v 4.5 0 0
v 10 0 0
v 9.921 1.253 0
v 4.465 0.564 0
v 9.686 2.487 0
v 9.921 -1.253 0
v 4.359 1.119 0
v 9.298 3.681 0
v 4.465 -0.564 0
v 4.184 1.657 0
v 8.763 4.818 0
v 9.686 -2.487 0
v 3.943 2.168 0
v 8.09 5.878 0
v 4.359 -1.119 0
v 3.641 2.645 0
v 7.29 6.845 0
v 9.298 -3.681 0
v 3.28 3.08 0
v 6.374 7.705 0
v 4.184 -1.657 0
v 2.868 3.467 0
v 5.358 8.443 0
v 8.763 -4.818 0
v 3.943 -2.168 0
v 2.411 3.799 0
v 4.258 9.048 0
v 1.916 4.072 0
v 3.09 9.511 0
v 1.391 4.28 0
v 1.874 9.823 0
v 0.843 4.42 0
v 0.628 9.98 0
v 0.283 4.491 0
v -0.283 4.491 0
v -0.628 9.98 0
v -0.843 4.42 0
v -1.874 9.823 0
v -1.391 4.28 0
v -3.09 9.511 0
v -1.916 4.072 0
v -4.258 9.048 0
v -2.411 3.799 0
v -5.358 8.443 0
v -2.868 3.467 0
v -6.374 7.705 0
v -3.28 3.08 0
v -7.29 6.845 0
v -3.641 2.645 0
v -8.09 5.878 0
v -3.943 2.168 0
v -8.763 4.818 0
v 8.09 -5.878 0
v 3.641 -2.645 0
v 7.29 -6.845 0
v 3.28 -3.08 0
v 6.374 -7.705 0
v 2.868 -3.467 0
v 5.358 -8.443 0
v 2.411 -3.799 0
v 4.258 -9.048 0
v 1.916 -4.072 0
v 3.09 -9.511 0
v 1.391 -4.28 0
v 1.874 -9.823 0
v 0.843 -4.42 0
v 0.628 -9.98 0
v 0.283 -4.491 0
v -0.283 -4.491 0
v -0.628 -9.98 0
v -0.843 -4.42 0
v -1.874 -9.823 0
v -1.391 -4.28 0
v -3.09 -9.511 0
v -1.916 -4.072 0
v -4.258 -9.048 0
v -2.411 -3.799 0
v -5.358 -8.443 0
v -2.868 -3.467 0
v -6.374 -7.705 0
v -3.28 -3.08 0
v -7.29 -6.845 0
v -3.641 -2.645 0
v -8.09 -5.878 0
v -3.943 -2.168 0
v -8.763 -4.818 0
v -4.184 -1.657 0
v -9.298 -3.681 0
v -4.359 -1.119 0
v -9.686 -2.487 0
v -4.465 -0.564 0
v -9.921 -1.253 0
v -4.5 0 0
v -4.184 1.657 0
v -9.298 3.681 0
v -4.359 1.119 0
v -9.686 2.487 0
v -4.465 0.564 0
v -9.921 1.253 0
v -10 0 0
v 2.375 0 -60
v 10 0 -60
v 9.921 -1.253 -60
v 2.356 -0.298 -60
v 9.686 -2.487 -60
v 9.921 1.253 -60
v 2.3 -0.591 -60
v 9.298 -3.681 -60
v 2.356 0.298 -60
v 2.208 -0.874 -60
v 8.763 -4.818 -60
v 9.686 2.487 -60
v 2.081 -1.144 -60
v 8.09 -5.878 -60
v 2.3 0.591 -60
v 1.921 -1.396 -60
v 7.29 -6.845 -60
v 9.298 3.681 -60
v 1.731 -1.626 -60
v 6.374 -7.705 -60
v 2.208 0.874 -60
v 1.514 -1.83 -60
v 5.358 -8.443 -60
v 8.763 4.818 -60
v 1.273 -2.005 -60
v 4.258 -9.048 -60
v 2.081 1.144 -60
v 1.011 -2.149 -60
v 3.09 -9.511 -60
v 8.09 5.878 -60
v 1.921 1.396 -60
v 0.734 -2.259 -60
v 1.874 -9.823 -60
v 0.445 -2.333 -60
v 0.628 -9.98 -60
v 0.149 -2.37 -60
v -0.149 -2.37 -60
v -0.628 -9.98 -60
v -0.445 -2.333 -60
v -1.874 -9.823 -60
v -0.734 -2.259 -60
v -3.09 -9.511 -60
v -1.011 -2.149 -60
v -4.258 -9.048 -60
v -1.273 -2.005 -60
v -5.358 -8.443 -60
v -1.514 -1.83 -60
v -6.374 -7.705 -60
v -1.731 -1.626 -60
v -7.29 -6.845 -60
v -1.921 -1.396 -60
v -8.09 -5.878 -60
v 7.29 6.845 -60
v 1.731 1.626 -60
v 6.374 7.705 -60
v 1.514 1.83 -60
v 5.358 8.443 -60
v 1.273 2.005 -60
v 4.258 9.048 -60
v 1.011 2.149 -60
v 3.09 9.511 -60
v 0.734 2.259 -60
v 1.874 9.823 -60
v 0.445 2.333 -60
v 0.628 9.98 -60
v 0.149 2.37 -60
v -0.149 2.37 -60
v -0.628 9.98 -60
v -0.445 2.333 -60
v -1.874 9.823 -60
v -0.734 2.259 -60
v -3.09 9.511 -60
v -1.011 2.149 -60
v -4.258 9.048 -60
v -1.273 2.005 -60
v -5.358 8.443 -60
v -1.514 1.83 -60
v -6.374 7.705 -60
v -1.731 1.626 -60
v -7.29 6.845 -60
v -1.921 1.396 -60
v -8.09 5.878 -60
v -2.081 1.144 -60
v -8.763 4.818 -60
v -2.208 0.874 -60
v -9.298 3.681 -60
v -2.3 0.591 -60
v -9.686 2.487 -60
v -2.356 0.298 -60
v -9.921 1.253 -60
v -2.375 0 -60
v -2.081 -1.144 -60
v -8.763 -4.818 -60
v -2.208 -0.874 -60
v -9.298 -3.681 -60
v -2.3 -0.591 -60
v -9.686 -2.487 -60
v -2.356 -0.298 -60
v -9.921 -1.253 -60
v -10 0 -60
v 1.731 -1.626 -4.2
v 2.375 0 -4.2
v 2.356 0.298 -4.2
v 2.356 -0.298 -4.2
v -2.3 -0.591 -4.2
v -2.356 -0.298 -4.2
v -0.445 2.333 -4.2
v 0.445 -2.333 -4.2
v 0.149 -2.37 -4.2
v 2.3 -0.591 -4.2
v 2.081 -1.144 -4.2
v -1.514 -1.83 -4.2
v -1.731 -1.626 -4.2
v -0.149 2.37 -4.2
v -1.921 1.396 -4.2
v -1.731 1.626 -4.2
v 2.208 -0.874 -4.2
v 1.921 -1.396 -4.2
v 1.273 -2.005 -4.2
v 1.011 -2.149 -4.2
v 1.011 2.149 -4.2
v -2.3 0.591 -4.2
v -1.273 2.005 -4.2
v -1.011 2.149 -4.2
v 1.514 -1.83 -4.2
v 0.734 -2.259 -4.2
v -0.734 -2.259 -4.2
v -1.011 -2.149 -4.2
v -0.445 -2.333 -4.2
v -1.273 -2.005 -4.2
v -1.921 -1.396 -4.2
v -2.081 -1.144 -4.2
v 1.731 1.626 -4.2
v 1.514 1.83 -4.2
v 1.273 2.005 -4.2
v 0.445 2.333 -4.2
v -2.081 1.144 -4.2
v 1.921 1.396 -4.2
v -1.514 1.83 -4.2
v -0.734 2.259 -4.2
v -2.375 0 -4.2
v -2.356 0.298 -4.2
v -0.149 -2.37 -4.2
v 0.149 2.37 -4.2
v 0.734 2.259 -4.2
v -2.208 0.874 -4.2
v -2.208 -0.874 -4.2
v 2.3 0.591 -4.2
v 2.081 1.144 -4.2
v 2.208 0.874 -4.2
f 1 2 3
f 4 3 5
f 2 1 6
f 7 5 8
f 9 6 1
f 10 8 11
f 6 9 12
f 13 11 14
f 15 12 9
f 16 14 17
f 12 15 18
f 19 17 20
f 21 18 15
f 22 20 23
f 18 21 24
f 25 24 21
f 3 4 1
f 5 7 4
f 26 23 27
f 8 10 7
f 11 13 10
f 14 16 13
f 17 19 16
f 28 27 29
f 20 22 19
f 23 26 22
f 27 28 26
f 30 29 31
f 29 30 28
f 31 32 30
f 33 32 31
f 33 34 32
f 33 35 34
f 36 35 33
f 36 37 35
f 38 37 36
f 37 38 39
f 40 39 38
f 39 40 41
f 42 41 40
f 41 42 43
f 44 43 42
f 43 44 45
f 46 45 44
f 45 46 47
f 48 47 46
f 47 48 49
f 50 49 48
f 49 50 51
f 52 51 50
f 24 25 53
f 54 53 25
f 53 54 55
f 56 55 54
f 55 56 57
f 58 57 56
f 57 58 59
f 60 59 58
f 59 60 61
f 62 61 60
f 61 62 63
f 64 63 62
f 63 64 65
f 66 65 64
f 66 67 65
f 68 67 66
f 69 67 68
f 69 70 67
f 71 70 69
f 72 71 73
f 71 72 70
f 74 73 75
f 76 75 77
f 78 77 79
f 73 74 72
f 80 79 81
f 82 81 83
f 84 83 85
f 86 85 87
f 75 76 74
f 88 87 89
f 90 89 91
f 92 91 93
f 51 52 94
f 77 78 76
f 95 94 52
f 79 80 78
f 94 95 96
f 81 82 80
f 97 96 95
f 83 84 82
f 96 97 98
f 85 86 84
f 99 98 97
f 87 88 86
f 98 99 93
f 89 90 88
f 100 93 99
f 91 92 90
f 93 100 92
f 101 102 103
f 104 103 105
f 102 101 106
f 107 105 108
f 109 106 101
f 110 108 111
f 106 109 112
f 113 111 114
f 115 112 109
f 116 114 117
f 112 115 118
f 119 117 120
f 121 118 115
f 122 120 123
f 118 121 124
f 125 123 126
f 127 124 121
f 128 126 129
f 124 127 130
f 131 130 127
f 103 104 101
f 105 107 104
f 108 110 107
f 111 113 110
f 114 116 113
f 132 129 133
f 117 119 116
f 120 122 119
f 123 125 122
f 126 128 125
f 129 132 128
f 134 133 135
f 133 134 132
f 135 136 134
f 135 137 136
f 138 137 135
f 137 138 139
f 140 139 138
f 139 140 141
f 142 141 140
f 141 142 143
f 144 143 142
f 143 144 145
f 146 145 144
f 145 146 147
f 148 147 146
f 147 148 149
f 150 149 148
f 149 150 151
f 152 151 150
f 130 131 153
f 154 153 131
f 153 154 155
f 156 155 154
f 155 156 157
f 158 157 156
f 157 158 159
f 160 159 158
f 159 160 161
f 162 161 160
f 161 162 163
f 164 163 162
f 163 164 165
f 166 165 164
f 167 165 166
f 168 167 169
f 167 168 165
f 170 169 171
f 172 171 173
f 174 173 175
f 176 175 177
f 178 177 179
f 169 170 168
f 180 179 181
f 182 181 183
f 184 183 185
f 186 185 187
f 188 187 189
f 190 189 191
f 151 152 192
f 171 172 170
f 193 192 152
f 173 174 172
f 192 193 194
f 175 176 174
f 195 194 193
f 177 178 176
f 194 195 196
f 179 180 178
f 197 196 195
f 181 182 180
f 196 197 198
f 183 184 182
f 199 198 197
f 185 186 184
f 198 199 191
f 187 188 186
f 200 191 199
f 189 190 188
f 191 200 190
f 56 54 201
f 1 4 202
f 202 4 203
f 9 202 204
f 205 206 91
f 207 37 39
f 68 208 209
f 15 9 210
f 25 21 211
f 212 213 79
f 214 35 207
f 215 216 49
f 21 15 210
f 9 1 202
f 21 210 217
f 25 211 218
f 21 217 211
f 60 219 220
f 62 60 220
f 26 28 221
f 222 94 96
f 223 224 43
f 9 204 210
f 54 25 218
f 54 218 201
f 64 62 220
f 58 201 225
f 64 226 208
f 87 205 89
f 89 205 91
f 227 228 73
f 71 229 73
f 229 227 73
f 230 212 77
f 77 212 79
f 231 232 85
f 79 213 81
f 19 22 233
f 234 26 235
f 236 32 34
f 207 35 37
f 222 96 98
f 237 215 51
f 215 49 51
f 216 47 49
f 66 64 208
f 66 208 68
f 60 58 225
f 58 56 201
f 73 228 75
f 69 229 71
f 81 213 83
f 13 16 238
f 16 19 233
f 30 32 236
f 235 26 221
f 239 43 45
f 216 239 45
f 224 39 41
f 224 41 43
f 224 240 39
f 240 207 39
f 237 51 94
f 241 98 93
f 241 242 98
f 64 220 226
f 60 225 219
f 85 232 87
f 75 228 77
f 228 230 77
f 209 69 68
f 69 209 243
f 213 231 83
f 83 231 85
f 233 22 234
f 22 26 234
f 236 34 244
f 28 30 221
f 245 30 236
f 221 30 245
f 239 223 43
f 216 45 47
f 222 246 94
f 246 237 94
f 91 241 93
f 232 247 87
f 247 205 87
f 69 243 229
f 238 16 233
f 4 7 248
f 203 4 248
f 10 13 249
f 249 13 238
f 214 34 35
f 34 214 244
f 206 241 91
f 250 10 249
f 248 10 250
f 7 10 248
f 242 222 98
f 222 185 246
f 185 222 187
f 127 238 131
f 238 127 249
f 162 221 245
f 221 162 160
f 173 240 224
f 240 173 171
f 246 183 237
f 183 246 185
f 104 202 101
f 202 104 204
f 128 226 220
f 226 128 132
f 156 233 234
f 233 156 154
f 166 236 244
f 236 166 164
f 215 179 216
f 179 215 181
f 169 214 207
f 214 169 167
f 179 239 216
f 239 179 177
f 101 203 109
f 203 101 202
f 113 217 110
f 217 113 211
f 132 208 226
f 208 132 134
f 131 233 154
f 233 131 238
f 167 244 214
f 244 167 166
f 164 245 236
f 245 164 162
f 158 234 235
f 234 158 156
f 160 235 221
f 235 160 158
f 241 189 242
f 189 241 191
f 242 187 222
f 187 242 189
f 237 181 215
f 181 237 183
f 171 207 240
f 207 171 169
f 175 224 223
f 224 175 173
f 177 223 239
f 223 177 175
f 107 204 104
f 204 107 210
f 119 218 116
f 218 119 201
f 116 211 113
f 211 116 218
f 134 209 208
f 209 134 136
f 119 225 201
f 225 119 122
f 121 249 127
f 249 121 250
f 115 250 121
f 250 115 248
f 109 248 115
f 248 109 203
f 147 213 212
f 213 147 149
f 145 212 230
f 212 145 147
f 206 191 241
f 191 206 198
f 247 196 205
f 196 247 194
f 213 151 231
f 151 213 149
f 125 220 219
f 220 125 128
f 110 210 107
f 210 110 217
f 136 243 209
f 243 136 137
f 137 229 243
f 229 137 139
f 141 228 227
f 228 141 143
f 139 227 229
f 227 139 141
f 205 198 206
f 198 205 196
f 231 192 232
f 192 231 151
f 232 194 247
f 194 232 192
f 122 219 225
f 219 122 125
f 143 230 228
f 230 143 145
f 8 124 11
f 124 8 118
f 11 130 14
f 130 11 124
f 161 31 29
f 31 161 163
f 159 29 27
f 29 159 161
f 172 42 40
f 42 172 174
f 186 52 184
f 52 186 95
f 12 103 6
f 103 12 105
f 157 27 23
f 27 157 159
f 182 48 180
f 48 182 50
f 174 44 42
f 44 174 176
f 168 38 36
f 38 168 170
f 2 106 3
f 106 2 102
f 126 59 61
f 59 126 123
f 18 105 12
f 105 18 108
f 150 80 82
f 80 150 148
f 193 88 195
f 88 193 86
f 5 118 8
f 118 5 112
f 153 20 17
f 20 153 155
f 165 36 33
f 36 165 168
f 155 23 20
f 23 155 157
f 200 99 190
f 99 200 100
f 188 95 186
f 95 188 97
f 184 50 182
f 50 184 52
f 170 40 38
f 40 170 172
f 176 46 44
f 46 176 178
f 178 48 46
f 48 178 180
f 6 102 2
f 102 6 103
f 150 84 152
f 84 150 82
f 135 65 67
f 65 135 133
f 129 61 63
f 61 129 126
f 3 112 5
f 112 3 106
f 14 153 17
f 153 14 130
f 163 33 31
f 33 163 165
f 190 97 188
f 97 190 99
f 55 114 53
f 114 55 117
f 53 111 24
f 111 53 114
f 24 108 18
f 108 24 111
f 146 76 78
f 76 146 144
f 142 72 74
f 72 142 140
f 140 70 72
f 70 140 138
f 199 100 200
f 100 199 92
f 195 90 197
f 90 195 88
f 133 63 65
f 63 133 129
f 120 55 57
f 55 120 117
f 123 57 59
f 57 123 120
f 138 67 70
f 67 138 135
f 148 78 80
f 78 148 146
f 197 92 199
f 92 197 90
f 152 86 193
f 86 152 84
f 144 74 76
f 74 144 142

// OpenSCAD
$fn = 50;


difference() {
	union() {
		translate(v = [0, 0, -60.0000000000]) {
			cylinder(h = 60, r = 10.0000000000);
		}
		cylinder(h = 0, r = 20.0000000000);
	}
	union() {
		translate(v = [0, 0, 0]) {
			rotate(a = [0, 0, 0]) {
				difference() {
					union() {
						#translate(v = [0, 0, -60.0000000000]) {
							cylinder(h = 60, r = 2.2500000000);
						}
						#translate(v = [0, 0, -4.2000000000]) {
							cylinder(h = 4.2000000000, r = 10.0000000000, r1 = 2.3750000000, r2 = 4.5000000000);
						}
						#translate(v = [0, 0, -60.0000000000]) {
							cylinder(h = 60, r = 2.3750000000);
						}
						#translate(v = [0, 0, -60.0000000000]) {
							cylinder(h = 60, r = 2.2500000000);
						}
					}
					union();
				}
			}
		}
	}
}
